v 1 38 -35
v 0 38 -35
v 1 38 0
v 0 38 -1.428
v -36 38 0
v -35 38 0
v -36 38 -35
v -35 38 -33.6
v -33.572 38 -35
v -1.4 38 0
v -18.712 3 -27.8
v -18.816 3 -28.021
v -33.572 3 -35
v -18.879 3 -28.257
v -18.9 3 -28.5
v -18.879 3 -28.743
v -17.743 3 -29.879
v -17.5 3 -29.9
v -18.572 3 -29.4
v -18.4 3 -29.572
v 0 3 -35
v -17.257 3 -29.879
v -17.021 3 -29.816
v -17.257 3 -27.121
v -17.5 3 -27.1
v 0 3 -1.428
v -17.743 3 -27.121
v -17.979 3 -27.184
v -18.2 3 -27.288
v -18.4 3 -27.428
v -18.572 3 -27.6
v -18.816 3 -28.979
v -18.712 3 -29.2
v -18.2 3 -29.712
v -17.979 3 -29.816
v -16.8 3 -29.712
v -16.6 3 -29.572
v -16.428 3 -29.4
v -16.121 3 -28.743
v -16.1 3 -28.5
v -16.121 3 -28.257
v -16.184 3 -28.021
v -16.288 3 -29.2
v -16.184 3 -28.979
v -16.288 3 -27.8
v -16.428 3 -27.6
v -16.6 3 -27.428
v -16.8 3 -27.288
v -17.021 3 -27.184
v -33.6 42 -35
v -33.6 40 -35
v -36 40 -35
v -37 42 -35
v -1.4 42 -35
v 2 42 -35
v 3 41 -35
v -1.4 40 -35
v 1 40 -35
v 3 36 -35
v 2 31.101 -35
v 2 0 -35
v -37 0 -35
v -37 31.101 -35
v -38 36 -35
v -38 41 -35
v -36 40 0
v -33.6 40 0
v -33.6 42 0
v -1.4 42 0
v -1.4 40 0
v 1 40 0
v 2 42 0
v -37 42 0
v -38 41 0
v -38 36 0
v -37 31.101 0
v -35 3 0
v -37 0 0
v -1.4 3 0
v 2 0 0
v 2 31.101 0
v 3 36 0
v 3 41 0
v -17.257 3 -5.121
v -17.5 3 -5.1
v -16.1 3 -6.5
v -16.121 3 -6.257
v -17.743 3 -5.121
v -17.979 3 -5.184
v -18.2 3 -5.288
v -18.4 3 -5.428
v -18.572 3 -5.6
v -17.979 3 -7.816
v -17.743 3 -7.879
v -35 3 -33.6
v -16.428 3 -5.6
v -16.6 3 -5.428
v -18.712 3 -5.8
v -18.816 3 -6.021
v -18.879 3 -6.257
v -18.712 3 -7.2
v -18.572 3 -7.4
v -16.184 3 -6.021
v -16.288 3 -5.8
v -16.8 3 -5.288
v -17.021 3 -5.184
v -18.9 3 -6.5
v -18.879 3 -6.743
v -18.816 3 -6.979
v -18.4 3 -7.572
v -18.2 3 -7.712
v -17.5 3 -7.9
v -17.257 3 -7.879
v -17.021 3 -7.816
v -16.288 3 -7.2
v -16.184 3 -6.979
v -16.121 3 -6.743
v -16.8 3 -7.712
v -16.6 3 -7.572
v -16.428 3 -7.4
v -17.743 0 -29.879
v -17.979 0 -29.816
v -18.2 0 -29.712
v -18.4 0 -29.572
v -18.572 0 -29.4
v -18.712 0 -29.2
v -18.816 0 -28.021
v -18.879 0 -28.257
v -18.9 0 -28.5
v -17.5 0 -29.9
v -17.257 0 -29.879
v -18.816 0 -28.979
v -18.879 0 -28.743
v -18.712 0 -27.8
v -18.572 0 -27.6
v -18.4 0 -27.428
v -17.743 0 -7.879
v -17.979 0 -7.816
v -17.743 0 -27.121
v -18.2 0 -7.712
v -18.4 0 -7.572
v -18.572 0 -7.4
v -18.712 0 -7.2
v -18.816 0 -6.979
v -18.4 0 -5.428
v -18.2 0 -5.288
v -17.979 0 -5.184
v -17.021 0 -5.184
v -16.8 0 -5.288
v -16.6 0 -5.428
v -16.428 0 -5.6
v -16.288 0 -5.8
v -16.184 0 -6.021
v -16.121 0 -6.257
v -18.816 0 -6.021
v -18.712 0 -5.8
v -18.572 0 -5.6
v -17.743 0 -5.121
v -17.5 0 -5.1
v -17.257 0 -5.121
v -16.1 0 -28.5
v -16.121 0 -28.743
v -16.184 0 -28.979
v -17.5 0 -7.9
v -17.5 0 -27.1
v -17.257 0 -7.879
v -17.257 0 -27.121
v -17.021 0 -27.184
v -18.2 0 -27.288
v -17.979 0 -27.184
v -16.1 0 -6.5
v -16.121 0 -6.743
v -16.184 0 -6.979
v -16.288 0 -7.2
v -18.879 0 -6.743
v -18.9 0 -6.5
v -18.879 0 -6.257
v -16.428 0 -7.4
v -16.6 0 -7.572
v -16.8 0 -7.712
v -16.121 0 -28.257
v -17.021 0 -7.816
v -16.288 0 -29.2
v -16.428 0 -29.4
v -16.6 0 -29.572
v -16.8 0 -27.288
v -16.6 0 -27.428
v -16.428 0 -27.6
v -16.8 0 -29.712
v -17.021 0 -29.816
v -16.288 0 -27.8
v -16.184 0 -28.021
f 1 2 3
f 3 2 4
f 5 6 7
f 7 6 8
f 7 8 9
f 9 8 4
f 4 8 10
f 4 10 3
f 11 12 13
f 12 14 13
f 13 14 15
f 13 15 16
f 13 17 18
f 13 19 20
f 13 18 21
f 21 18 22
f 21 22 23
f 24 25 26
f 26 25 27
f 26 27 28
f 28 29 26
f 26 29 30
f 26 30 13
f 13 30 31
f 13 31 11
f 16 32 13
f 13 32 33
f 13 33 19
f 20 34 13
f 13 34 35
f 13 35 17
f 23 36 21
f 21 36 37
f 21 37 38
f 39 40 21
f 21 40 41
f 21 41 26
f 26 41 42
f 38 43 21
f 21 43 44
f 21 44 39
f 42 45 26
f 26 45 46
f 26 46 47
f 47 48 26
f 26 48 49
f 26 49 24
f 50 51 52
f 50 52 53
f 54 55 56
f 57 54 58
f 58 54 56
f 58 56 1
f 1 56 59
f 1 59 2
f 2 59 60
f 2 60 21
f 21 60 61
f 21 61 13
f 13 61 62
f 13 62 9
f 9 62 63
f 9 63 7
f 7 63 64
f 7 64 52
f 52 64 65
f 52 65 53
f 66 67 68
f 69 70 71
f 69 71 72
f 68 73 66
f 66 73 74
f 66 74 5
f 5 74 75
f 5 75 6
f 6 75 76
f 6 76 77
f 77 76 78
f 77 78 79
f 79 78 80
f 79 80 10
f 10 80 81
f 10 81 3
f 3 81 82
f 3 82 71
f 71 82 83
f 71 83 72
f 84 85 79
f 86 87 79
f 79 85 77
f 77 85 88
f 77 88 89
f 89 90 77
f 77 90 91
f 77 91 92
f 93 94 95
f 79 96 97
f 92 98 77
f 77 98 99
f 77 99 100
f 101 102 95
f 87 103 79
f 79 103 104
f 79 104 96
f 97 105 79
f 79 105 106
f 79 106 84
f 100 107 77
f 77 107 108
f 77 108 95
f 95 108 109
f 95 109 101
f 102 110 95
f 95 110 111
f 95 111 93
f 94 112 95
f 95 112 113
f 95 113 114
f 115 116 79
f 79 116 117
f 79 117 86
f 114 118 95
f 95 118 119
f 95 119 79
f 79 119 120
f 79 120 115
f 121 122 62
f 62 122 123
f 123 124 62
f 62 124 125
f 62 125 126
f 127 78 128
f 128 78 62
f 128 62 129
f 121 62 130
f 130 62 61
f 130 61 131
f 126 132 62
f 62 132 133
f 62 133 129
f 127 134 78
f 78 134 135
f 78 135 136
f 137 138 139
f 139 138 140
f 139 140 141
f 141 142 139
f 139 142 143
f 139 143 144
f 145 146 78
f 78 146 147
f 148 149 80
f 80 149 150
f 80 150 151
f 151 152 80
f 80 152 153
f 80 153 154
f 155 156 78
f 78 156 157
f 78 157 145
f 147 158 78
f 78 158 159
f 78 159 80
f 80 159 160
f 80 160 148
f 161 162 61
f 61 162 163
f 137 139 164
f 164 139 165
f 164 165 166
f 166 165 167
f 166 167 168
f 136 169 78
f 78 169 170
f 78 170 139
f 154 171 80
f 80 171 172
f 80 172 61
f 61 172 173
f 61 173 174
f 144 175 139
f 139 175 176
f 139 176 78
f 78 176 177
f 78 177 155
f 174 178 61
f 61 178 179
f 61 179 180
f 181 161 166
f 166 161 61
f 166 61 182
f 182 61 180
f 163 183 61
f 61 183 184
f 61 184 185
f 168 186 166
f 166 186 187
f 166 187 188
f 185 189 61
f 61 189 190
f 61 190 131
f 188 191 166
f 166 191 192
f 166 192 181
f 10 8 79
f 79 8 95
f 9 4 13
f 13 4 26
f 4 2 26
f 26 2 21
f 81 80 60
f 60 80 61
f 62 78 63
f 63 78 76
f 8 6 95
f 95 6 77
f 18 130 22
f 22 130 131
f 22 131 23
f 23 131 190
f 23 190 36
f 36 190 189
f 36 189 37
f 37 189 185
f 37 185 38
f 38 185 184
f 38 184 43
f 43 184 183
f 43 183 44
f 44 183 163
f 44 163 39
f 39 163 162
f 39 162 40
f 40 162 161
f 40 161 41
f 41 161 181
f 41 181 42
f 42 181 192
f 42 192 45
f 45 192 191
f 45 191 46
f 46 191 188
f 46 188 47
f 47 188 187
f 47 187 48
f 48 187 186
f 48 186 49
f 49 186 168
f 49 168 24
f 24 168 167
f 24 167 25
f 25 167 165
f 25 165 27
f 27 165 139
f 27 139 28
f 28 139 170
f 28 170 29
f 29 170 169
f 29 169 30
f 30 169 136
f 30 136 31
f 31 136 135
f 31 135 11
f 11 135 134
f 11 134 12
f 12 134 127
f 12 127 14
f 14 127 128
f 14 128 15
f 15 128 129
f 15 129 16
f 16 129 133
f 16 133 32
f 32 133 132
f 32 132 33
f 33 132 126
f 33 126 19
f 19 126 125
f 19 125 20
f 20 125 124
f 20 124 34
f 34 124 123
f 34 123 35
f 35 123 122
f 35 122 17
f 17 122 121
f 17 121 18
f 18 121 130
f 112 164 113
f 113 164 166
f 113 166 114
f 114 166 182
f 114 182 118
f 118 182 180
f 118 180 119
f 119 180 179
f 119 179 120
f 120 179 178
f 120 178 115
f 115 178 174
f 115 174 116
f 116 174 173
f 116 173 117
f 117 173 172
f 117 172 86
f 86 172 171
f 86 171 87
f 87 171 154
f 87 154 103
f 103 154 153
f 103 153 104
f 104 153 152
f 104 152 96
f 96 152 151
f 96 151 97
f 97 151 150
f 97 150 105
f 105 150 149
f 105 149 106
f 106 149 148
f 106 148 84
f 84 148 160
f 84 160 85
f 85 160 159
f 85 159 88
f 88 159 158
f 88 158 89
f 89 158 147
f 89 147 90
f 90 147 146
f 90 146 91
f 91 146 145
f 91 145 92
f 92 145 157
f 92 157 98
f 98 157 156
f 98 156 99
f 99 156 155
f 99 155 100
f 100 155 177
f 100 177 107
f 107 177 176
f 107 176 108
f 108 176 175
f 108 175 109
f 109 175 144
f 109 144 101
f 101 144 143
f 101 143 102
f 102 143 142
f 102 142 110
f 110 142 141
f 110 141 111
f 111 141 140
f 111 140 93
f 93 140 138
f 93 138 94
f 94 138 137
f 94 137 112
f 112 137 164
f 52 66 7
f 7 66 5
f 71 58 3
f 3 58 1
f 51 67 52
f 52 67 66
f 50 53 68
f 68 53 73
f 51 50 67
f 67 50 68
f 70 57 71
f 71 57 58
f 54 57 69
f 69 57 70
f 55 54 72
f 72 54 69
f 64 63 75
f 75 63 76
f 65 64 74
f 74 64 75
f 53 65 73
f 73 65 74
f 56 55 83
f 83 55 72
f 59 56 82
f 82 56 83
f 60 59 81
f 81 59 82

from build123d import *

# Parameters (mm, degrees)
SKETCH1_W            = 35
SKETCH1_H            = 35
BOSS_EXTRUDE1_DEPTH  = 3
BOSS_EXTRUDE2_DEPTH  = 35
SKETCH6_W            = 35
SKETCH6_H            = 38
BOSS_EXTRUDE8_DEPTH  = 2
SKETCH7_W            = 35
SKETCH7_H            = 38
BOSS_EXTRUDE9_DEPTH  = 2
SKETCH8_R            = 1.4
CUT_EXTRUDE1_DEPTH   = 10
SKETCH9_W            = 1
SKETCH9_H            = 35
BOSS_EXTRUDE10_DEPTH = 2
SKETCH10_W           = 3.4
SKETCH10_H           = 2
BOSS_EXTRUDE11_DEPTH = 35
BOSS_EXTRUDE12_DEPTH = 35


with BuildPart() as part:
    # Sketch1 → Boss-Extrude1 (new body)
    with BuildSketch(Plane(origin=(0, 0, 0), x_dir=(1, 0, 0), z_dir=(0, 1, 0))):
        with Locations((-17.5, 17.5)):
            Rectangle(SKETCH1_W, SKETCH1_H)
    extrude(amount=BOSS_EXTRUDE1_DEPTH)

    # Sketch2 → Boss-Extrude2 (add)
    with BuildSketch(Plane(origin=(0, 3, 0), x_dir=(1, 0, 0), z_dir=(0, 1, 0))):
        Polygon((-35, 33.6), (-1.4, 0), (0, 0), (0, 1.428427125), (-33.571572875, 35), (-35, 35), align=None)
    extrude(amount=BOSS_EXTRUDE2_DEPTH)

    # Sketch6 → Boss-Extrude8 (add)
    with BuildSketch(Plane(origin=(0, 0, 0), x_dir=(0, 0, -1), z_dir=(1, 0, 0))):
        with Locations((17.5, 19)):
            Rectangle(SKETCH6_W, SKETCH6_H)
    extrude(amount=BOSS_EXTRUDE8_DEPTH)

    # Sketch7 → Boss-Extrude9 (add)
    with BuildSketch(Plane.ZY.offset(35)):
        with Locations((-17.5, 19)):
            Rectangle(SKETCH7_W, SKETCH7_H)
    extrude(amount=BOSS_EXTRUDE9_DEPTH)

    # Sketch8 → Cut-Extrude1 (cut)
    with BuildSketch(Plane.XZ):
        with Locations((-17.5, -6.5)):
            Circle(SKETCH8_R)
        with Locations((-17.5, -28.5)):
            Circle(SKETCH8_R)
    extrude(amount=-CUT_EXTRUDE1_DEPTH, mode=Mode.SUBTRACT)

    # Sketch9 → Boss-Extrude10 (add)
    with BuildSketch(Plane(origin=(0, 38, 0), x_dir=(1, 0, 0), z_dir=(0, 1, 0))):
        with Locations((-36.5, 17.5)):
            Rectangle(SKETCH9_W, SKETCH9_H)
        with Locations((1.5, 17.5)):
            Rectangle(SKETCH9_W, SKETCH9_H)
    extrude(amount=BOSS_EXTRUDE10_DEPTH)

    # Sketch10 → Boss-Extrude11 (add)
    with BuildSketch(Plane.XY):
        with Locations((-35.3, 41)):
            Rectangle(SKETCH10_W, SKETCH10_H)
        with Locations((0.3, 41)):
            Rectangle(SKETCH10_W, SKETCH10_H)
    extrude(amount=-BOSS_EXTRUDE11_DEPTH)

    # Sketch11 → Boss-Extrude12 (add)
    with BuildSketch(Plane.XY):
        Polygon((-37, 42), (-38, 41), (-38, 36), (-37, 31.101020514), align=None)
        Polygon((2, 42), (3, 41), (3, 36), (2, 31.101020514), align=None)
    extrude(amount=-BOSS_EXTRUDE12_DEPTH)


solid = part.part
